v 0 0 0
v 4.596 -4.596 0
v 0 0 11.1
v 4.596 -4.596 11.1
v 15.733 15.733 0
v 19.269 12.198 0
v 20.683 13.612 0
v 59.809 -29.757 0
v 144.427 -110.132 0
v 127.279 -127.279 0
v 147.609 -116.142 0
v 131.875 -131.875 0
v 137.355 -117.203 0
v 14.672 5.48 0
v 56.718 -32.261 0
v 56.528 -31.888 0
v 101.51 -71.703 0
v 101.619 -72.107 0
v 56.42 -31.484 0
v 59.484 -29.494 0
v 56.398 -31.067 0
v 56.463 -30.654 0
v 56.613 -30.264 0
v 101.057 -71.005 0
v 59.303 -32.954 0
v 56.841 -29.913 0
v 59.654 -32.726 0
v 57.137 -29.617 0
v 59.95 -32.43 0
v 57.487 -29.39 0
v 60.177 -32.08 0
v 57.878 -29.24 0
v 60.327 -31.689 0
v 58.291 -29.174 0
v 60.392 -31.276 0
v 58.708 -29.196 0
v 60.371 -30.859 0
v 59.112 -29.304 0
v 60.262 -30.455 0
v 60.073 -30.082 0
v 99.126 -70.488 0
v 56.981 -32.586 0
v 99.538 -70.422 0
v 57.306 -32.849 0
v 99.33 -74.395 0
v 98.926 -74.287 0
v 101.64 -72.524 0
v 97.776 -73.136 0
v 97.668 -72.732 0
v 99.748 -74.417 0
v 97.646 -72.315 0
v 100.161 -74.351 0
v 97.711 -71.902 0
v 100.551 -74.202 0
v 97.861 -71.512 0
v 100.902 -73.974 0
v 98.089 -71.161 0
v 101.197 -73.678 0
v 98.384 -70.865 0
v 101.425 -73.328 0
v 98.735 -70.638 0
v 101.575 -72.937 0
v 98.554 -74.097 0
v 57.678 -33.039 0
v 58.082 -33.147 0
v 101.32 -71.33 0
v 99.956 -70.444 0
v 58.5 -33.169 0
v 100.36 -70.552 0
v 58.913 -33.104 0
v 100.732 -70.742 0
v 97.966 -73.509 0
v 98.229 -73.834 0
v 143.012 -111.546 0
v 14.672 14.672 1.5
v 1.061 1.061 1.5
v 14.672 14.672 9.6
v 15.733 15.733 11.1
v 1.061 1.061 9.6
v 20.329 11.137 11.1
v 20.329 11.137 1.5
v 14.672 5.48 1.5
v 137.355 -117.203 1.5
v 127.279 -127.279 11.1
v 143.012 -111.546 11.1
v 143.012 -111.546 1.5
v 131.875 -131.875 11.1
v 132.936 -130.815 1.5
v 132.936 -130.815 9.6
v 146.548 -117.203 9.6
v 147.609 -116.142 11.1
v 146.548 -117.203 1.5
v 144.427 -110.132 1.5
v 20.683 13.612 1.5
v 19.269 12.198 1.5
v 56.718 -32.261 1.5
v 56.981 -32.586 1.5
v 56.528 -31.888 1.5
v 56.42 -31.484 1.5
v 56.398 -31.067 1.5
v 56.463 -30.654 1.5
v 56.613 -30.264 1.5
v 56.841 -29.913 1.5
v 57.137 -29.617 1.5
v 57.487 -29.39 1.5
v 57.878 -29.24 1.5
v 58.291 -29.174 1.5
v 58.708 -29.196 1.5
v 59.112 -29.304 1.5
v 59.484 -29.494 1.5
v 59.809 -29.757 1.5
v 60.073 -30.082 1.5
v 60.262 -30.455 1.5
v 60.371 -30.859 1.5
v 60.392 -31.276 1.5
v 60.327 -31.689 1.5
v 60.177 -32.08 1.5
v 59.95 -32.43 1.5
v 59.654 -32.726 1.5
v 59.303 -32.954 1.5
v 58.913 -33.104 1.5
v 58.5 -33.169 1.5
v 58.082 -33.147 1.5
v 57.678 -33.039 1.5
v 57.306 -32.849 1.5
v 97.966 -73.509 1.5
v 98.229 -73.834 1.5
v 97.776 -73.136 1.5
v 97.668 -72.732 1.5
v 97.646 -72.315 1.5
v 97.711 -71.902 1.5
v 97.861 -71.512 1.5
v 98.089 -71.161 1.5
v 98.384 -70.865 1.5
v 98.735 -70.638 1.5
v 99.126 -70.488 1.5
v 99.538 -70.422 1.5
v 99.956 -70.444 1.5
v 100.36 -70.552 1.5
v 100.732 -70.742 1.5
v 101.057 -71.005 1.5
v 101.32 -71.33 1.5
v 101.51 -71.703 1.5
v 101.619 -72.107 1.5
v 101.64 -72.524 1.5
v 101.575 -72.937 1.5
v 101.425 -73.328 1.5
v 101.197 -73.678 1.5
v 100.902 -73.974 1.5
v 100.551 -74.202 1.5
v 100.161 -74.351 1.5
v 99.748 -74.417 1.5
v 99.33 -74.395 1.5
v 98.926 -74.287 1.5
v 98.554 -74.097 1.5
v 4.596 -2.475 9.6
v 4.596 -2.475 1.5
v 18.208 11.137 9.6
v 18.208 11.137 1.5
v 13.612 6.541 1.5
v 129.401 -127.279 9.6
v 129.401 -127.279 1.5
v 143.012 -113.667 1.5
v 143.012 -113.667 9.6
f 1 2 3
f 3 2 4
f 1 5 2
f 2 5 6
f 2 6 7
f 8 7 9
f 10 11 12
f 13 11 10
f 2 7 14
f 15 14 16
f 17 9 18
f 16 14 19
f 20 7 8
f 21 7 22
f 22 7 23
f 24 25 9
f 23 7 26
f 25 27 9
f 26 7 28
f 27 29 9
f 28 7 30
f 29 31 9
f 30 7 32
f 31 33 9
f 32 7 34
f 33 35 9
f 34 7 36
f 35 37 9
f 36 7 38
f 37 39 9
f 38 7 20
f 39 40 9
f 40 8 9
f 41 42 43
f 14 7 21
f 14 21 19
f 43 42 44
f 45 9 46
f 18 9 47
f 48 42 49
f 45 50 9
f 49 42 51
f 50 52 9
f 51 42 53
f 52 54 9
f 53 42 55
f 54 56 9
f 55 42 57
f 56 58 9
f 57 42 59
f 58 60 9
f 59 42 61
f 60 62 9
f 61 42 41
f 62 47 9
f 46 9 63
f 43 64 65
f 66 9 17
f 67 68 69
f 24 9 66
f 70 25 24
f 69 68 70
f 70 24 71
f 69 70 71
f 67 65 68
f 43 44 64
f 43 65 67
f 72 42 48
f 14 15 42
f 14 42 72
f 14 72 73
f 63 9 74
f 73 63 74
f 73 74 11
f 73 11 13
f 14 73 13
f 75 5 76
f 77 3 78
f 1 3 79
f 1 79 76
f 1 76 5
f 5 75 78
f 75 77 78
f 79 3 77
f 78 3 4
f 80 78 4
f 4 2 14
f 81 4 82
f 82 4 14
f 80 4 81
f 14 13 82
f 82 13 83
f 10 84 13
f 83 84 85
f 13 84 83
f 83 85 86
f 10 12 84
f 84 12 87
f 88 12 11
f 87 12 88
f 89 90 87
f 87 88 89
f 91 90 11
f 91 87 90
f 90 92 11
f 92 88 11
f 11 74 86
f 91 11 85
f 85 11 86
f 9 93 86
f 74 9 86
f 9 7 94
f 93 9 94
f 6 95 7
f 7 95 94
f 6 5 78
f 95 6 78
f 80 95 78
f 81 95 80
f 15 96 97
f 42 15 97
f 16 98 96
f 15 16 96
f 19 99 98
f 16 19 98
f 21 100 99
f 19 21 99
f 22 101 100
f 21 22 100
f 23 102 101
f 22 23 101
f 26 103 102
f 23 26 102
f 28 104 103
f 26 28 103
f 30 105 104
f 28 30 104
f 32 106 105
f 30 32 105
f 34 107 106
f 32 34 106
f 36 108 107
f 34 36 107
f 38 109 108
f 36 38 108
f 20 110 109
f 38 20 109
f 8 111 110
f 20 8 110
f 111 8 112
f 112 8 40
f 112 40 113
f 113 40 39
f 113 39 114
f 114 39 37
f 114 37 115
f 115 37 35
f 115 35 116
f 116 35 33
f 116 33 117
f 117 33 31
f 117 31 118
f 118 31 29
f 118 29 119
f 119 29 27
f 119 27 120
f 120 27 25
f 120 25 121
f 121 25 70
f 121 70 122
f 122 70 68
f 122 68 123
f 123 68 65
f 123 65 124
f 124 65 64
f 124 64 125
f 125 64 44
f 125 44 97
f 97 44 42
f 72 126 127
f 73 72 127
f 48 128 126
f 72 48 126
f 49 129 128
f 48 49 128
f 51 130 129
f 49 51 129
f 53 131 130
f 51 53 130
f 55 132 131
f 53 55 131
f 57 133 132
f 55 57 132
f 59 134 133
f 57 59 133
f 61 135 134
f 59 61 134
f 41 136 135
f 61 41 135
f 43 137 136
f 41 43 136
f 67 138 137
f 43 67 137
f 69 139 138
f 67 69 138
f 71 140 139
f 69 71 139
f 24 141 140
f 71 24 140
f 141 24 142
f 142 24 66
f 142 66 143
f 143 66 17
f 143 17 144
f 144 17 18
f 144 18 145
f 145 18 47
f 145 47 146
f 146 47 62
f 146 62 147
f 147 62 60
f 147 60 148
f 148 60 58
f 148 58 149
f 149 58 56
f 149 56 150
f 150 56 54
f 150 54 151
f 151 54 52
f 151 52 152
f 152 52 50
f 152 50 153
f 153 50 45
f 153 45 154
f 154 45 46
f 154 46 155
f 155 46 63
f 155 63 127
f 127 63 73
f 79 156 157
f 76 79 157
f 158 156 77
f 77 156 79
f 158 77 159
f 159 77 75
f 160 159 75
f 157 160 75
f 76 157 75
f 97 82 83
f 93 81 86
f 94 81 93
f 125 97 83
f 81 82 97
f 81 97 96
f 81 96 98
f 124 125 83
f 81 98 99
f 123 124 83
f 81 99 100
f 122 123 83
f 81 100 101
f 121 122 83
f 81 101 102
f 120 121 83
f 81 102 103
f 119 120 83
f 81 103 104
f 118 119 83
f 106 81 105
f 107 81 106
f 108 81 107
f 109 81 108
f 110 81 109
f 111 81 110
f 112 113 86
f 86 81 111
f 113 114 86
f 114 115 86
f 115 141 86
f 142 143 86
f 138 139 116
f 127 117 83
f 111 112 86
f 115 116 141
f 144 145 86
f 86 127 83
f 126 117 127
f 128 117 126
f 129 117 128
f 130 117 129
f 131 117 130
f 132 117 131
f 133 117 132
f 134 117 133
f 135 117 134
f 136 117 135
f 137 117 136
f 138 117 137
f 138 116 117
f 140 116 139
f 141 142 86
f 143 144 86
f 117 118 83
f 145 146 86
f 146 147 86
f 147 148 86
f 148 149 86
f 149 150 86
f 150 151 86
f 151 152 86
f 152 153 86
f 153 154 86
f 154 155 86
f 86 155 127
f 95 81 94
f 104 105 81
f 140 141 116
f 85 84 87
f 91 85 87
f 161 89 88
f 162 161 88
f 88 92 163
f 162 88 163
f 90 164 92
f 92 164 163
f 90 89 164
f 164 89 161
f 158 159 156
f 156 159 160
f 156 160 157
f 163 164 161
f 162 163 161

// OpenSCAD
socket_width = 19.25;
socket_length = 8.1;
socket_depth = 5;
socket_thickness = 1.5;
side_width = 10;
side_offset = (socket_width + 2*socket_thickness) - side_width + 2;

span_length = 175;

module socket(depth_offset) {
  difference() {
    cube(size=[socket_width + socket_thickness * 2,
               socket_length + socket_thickness * 2,
               socket_depth + socket_thickness]);
    translate([socket_thickness, socket_thickness, depth_offset])
      #cube(size=[socket_width, socket_length, socket_depth]);
  }
}

rotate([90,0,45]) {
socket(0);
translate([0,0,span_length + socket_depth]) socket(socket_thickness);

difference() {
  translate([side_offset,0,socket_depth]) cube(size=[side_width, socket_thickness, span_length]);
  translate([side_offset + side_width/2,2.5,socket_depth + (span_length/3)]) rotate([90,0,0]) #cylinder(r=2, h=5, $fn=30);
  translate([side_offset + side_width/2,2.5,socket_depth + ((span_length/3)*2)]) rotate([90,0,0]) #cylinder(r=2, h=5, $fn=30);
}
}
